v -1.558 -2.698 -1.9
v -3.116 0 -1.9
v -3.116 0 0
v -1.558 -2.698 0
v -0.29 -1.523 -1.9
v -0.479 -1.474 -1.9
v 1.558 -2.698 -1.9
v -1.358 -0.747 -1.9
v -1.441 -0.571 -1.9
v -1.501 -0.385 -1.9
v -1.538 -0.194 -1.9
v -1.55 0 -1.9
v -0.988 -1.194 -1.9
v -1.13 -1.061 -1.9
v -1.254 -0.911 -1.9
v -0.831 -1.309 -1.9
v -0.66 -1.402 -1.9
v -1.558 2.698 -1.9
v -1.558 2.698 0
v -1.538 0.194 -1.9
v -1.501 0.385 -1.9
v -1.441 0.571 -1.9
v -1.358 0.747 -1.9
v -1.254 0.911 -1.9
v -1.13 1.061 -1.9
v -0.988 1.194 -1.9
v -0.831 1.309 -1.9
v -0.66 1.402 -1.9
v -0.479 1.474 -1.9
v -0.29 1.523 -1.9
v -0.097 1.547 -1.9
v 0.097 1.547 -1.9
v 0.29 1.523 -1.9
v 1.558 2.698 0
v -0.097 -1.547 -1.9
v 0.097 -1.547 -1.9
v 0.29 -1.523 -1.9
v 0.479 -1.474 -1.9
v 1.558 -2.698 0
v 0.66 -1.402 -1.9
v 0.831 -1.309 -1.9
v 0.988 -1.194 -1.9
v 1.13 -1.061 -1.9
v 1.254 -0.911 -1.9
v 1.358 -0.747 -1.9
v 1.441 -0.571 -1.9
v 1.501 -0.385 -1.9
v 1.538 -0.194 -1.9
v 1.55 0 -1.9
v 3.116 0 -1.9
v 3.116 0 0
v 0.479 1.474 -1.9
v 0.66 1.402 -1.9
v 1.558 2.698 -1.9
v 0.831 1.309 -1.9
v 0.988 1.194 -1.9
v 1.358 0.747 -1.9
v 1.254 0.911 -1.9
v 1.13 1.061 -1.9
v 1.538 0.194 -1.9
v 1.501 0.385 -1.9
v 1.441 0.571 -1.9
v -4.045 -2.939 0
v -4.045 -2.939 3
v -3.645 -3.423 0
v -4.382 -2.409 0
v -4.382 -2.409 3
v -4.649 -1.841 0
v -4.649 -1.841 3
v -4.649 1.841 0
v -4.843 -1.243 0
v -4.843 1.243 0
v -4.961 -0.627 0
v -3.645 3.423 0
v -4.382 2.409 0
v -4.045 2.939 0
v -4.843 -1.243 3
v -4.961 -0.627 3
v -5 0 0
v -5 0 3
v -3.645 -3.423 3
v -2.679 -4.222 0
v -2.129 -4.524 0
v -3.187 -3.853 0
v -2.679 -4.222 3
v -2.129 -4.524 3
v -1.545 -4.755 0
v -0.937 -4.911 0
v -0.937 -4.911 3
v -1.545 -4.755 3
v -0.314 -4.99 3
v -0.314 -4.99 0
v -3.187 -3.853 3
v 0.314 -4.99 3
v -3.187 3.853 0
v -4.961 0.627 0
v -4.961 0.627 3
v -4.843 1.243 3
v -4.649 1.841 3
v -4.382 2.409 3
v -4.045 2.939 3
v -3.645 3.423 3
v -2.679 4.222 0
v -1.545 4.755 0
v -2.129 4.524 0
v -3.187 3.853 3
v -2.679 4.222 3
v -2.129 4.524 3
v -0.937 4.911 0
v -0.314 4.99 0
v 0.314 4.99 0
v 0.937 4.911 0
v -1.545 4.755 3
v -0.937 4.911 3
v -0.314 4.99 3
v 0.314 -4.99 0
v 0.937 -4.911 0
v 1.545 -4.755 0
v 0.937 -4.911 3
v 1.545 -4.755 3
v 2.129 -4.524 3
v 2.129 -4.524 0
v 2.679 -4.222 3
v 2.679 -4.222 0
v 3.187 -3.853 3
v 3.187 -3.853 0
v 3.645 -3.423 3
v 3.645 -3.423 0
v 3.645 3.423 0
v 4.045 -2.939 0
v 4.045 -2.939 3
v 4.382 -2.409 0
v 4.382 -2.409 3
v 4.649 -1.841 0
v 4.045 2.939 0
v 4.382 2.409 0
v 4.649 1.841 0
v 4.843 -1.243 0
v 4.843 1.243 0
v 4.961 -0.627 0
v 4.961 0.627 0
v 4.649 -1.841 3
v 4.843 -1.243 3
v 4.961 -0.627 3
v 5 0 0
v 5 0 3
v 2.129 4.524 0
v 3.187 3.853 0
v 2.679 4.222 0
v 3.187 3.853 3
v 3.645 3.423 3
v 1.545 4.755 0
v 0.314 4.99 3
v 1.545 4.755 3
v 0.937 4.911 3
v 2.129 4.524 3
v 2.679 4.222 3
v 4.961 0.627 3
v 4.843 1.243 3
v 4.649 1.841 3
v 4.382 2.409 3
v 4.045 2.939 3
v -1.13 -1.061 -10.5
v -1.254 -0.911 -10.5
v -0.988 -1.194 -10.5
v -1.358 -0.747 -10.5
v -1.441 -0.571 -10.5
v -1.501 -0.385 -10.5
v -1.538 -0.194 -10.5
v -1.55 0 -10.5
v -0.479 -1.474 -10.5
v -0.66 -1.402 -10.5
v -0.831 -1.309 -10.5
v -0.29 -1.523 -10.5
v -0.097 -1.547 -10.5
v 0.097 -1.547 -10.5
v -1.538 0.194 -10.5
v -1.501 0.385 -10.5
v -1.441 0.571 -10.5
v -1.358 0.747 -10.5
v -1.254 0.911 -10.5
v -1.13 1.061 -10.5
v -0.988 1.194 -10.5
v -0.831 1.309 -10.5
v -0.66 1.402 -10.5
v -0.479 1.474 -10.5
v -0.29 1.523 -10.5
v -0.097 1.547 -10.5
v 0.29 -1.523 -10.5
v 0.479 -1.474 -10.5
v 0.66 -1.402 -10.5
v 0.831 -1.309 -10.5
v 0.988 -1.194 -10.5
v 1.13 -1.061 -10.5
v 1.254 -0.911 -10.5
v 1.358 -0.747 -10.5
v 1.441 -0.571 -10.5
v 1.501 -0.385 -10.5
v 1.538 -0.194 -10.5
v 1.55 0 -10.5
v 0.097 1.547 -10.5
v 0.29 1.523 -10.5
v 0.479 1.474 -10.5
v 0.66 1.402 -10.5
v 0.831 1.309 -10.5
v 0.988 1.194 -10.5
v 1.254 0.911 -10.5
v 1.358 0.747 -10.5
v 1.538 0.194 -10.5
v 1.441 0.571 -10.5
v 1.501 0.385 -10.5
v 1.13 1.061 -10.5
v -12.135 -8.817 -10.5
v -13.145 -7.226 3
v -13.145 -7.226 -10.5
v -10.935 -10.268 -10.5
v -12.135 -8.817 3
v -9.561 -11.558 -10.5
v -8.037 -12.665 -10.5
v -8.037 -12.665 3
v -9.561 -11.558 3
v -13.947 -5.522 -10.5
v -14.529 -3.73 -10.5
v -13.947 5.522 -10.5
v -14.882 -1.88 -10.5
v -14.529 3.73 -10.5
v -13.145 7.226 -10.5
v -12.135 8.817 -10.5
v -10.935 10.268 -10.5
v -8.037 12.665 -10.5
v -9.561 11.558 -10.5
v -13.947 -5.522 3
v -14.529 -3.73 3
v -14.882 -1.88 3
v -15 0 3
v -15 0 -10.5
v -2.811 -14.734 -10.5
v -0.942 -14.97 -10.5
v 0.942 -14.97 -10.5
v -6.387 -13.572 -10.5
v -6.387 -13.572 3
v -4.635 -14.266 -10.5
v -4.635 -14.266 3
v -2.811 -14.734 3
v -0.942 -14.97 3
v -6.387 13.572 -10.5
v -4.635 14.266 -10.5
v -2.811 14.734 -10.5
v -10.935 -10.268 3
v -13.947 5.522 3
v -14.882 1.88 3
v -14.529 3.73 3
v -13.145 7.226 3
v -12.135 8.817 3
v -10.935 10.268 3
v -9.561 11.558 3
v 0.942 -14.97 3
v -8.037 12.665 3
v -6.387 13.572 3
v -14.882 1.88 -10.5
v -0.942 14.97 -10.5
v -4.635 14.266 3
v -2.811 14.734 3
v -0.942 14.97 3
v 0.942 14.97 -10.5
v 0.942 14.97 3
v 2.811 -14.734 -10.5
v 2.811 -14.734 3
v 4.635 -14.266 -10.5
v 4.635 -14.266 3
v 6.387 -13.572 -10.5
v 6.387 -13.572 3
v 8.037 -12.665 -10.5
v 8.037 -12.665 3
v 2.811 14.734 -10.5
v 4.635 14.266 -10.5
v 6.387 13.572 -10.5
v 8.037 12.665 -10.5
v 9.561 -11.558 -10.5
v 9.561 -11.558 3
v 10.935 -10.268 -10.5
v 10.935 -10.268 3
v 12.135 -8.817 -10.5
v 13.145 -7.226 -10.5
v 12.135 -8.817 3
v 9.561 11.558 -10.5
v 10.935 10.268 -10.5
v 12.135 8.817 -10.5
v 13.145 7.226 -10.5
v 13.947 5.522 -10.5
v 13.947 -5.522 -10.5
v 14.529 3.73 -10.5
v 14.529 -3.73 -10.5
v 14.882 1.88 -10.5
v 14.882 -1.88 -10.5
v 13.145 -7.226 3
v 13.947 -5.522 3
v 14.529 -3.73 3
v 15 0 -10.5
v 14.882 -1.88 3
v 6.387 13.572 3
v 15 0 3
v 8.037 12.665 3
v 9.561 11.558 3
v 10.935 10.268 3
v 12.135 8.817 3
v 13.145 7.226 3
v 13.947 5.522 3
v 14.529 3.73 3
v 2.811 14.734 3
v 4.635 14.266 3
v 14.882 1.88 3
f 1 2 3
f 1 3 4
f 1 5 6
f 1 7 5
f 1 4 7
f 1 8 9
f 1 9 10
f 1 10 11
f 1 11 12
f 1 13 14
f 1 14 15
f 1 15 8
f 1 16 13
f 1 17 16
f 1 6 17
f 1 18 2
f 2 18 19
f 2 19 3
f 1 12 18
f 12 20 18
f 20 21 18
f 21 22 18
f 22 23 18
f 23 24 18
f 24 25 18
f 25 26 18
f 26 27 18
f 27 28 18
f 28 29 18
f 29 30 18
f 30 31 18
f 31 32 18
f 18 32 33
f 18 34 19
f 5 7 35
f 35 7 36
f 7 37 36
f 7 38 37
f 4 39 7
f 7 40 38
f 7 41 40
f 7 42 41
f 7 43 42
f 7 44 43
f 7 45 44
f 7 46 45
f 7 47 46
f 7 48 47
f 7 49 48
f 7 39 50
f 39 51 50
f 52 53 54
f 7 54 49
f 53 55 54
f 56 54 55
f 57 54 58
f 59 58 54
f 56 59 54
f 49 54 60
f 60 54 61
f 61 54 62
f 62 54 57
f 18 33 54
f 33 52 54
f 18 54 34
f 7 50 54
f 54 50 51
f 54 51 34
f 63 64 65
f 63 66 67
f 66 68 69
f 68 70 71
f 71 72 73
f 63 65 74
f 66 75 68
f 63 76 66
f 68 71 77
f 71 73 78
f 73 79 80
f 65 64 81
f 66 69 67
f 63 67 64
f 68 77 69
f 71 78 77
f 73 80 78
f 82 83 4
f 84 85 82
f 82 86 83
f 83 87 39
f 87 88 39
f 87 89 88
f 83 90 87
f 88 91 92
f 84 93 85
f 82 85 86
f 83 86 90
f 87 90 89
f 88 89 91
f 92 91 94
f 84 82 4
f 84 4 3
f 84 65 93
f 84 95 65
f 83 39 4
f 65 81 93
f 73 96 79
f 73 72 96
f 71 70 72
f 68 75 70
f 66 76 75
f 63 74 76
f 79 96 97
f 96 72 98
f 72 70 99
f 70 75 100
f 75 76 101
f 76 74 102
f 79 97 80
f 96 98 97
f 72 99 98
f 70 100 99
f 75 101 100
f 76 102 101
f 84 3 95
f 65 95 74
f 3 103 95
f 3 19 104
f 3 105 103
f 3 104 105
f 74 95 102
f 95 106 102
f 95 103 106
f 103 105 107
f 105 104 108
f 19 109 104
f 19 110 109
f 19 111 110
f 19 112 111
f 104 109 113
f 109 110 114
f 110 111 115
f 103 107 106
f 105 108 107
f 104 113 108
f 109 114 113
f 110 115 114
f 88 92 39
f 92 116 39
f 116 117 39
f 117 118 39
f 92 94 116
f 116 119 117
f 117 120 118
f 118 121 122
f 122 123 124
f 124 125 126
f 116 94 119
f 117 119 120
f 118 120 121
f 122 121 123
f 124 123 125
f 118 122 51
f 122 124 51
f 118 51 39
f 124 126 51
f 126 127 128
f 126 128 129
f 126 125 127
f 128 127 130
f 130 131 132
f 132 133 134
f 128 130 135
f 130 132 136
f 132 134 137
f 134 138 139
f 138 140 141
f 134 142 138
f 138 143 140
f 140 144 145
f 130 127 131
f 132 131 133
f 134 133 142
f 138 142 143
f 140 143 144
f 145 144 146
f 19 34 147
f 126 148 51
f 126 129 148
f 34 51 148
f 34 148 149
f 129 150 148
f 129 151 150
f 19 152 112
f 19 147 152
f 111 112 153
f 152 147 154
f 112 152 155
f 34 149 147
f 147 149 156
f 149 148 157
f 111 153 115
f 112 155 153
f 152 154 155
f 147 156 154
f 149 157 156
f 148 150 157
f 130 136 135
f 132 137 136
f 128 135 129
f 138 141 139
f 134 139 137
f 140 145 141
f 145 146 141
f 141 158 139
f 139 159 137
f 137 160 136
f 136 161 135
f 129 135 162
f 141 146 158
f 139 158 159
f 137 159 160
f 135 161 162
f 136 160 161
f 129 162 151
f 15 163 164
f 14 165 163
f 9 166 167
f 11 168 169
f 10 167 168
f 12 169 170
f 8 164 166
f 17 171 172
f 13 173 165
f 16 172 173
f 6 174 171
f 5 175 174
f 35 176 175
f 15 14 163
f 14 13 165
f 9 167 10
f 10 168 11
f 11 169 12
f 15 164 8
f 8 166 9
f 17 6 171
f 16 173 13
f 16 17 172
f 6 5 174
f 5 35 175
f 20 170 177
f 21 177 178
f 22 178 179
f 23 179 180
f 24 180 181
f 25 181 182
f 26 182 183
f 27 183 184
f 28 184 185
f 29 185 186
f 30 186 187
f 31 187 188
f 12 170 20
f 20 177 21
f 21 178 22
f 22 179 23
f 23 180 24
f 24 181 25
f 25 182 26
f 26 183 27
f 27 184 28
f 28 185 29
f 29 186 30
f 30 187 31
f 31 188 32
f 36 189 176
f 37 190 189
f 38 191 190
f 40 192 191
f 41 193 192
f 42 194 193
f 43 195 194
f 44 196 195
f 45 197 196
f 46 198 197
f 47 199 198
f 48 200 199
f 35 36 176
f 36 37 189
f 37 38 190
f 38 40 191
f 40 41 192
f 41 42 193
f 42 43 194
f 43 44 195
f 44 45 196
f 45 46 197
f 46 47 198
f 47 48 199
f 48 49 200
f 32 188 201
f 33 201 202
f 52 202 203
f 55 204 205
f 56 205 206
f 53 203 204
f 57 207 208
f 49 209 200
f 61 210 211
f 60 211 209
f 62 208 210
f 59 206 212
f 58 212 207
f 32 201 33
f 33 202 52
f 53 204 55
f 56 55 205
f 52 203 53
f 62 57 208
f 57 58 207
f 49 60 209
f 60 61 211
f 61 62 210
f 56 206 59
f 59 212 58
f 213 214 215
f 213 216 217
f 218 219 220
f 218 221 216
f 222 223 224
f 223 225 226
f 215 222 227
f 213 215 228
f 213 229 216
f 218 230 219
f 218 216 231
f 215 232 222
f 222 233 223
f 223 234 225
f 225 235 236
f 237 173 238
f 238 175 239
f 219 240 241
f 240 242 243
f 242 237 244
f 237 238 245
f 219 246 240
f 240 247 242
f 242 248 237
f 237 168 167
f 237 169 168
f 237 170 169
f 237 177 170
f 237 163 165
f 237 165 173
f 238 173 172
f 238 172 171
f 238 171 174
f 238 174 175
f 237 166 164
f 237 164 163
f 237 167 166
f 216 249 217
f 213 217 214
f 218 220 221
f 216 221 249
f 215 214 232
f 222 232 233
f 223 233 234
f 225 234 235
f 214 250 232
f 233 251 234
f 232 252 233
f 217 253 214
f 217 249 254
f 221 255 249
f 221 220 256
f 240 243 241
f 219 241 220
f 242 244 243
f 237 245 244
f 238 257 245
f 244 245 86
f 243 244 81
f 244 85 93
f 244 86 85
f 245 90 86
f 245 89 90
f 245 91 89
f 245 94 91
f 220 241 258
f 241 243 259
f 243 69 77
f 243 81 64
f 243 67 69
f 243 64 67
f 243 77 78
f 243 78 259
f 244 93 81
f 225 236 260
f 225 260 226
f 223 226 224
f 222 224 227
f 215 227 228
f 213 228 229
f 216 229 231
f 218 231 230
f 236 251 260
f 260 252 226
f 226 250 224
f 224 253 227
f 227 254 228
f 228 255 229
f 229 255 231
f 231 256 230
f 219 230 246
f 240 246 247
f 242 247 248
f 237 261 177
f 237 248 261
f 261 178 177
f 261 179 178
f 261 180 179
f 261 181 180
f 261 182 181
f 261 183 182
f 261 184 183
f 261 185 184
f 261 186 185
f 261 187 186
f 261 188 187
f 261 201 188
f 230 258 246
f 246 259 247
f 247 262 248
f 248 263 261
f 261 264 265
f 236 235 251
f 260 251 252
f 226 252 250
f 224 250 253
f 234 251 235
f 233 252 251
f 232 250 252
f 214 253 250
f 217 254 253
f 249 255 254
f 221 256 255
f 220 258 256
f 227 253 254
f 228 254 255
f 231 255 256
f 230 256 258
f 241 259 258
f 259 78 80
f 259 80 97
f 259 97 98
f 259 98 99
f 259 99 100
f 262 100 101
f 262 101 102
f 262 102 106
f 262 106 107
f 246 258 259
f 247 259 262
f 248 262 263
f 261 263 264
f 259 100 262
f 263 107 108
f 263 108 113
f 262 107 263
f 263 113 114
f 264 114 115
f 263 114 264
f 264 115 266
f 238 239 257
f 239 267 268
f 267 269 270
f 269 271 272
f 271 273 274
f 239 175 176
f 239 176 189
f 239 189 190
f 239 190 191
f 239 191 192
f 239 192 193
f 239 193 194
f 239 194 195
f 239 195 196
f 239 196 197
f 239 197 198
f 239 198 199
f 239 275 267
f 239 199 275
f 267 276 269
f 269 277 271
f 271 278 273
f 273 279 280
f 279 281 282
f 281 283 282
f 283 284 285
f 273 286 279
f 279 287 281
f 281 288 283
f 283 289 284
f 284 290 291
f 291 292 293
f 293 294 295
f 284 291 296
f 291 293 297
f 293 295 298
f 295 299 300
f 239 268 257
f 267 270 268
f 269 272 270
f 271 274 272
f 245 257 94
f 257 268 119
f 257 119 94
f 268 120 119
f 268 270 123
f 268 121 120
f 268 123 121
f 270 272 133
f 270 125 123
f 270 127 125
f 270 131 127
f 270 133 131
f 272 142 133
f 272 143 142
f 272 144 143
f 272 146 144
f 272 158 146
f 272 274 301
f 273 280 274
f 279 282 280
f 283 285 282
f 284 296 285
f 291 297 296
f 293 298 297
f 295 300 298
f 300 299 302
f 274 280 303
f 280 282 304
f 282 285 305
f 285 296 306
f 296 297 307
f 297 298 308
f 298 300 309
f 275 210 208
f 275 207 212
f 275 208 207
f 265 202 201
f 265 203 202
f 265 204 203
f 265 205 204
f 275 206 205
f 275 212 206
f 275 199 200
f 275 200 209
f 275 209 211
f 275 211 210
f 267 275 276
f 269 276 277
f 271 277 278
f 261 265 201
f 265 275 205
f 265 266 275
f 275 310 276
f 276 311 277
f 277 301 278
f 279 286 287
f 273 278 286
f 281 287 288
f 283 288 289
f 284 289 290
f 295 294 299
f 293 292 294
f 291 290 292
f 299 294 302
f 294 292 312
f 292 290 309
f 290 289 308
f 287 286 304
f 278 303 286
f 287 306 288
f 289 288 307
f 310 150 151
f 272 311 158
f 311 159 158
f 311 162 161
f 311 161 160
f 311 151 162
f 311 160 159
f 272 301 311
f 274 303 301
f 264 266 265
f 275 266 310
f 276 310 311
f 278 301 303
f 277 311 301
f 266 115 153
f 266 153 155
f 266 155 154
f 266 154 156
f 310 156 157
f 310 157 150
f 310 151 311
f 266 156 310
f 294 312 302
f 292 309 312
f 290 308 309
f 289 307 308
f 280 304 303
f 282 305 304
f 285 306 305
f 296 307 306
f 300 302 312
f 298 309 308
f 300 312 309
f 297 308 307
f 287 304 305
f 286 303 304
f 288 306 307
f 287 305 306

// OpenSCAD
$fn = 50;


difference() {
	union() {
		translate(v = [0, 0, -10.5000000000]) {
			cylinder(h = 13.5000000000, r = 15.0000000000);
		}
	}
	union() {
		translate(v = [0, 0, 0]) {
			rotate(a = [0, 0, 0]) {
				difference() {
					union() {
						translate(v = [0, 0, -1.9000000000]) {
							linear_extrude(height = 1.9000000000) {
								polygon(points = [[3.1158000000, 0.0000000000], [1.5579000000, 2.6983619531], [-1.5579000000, 2.6983619531], [-3.1158000000, 0.0000000000], [-1.5579000000, -2.6983619531], [1.5579000000, -2.6983619531]]);
							}
						}
					}
					union();
				}
			}
		}
		#cylinder(h = 3, r = 5.0000000000);
		#translate(v = [0, 0, -100.0000000000]) {
			cylinder(h = 200, r = 1.5500000000);
		}
	}
}
